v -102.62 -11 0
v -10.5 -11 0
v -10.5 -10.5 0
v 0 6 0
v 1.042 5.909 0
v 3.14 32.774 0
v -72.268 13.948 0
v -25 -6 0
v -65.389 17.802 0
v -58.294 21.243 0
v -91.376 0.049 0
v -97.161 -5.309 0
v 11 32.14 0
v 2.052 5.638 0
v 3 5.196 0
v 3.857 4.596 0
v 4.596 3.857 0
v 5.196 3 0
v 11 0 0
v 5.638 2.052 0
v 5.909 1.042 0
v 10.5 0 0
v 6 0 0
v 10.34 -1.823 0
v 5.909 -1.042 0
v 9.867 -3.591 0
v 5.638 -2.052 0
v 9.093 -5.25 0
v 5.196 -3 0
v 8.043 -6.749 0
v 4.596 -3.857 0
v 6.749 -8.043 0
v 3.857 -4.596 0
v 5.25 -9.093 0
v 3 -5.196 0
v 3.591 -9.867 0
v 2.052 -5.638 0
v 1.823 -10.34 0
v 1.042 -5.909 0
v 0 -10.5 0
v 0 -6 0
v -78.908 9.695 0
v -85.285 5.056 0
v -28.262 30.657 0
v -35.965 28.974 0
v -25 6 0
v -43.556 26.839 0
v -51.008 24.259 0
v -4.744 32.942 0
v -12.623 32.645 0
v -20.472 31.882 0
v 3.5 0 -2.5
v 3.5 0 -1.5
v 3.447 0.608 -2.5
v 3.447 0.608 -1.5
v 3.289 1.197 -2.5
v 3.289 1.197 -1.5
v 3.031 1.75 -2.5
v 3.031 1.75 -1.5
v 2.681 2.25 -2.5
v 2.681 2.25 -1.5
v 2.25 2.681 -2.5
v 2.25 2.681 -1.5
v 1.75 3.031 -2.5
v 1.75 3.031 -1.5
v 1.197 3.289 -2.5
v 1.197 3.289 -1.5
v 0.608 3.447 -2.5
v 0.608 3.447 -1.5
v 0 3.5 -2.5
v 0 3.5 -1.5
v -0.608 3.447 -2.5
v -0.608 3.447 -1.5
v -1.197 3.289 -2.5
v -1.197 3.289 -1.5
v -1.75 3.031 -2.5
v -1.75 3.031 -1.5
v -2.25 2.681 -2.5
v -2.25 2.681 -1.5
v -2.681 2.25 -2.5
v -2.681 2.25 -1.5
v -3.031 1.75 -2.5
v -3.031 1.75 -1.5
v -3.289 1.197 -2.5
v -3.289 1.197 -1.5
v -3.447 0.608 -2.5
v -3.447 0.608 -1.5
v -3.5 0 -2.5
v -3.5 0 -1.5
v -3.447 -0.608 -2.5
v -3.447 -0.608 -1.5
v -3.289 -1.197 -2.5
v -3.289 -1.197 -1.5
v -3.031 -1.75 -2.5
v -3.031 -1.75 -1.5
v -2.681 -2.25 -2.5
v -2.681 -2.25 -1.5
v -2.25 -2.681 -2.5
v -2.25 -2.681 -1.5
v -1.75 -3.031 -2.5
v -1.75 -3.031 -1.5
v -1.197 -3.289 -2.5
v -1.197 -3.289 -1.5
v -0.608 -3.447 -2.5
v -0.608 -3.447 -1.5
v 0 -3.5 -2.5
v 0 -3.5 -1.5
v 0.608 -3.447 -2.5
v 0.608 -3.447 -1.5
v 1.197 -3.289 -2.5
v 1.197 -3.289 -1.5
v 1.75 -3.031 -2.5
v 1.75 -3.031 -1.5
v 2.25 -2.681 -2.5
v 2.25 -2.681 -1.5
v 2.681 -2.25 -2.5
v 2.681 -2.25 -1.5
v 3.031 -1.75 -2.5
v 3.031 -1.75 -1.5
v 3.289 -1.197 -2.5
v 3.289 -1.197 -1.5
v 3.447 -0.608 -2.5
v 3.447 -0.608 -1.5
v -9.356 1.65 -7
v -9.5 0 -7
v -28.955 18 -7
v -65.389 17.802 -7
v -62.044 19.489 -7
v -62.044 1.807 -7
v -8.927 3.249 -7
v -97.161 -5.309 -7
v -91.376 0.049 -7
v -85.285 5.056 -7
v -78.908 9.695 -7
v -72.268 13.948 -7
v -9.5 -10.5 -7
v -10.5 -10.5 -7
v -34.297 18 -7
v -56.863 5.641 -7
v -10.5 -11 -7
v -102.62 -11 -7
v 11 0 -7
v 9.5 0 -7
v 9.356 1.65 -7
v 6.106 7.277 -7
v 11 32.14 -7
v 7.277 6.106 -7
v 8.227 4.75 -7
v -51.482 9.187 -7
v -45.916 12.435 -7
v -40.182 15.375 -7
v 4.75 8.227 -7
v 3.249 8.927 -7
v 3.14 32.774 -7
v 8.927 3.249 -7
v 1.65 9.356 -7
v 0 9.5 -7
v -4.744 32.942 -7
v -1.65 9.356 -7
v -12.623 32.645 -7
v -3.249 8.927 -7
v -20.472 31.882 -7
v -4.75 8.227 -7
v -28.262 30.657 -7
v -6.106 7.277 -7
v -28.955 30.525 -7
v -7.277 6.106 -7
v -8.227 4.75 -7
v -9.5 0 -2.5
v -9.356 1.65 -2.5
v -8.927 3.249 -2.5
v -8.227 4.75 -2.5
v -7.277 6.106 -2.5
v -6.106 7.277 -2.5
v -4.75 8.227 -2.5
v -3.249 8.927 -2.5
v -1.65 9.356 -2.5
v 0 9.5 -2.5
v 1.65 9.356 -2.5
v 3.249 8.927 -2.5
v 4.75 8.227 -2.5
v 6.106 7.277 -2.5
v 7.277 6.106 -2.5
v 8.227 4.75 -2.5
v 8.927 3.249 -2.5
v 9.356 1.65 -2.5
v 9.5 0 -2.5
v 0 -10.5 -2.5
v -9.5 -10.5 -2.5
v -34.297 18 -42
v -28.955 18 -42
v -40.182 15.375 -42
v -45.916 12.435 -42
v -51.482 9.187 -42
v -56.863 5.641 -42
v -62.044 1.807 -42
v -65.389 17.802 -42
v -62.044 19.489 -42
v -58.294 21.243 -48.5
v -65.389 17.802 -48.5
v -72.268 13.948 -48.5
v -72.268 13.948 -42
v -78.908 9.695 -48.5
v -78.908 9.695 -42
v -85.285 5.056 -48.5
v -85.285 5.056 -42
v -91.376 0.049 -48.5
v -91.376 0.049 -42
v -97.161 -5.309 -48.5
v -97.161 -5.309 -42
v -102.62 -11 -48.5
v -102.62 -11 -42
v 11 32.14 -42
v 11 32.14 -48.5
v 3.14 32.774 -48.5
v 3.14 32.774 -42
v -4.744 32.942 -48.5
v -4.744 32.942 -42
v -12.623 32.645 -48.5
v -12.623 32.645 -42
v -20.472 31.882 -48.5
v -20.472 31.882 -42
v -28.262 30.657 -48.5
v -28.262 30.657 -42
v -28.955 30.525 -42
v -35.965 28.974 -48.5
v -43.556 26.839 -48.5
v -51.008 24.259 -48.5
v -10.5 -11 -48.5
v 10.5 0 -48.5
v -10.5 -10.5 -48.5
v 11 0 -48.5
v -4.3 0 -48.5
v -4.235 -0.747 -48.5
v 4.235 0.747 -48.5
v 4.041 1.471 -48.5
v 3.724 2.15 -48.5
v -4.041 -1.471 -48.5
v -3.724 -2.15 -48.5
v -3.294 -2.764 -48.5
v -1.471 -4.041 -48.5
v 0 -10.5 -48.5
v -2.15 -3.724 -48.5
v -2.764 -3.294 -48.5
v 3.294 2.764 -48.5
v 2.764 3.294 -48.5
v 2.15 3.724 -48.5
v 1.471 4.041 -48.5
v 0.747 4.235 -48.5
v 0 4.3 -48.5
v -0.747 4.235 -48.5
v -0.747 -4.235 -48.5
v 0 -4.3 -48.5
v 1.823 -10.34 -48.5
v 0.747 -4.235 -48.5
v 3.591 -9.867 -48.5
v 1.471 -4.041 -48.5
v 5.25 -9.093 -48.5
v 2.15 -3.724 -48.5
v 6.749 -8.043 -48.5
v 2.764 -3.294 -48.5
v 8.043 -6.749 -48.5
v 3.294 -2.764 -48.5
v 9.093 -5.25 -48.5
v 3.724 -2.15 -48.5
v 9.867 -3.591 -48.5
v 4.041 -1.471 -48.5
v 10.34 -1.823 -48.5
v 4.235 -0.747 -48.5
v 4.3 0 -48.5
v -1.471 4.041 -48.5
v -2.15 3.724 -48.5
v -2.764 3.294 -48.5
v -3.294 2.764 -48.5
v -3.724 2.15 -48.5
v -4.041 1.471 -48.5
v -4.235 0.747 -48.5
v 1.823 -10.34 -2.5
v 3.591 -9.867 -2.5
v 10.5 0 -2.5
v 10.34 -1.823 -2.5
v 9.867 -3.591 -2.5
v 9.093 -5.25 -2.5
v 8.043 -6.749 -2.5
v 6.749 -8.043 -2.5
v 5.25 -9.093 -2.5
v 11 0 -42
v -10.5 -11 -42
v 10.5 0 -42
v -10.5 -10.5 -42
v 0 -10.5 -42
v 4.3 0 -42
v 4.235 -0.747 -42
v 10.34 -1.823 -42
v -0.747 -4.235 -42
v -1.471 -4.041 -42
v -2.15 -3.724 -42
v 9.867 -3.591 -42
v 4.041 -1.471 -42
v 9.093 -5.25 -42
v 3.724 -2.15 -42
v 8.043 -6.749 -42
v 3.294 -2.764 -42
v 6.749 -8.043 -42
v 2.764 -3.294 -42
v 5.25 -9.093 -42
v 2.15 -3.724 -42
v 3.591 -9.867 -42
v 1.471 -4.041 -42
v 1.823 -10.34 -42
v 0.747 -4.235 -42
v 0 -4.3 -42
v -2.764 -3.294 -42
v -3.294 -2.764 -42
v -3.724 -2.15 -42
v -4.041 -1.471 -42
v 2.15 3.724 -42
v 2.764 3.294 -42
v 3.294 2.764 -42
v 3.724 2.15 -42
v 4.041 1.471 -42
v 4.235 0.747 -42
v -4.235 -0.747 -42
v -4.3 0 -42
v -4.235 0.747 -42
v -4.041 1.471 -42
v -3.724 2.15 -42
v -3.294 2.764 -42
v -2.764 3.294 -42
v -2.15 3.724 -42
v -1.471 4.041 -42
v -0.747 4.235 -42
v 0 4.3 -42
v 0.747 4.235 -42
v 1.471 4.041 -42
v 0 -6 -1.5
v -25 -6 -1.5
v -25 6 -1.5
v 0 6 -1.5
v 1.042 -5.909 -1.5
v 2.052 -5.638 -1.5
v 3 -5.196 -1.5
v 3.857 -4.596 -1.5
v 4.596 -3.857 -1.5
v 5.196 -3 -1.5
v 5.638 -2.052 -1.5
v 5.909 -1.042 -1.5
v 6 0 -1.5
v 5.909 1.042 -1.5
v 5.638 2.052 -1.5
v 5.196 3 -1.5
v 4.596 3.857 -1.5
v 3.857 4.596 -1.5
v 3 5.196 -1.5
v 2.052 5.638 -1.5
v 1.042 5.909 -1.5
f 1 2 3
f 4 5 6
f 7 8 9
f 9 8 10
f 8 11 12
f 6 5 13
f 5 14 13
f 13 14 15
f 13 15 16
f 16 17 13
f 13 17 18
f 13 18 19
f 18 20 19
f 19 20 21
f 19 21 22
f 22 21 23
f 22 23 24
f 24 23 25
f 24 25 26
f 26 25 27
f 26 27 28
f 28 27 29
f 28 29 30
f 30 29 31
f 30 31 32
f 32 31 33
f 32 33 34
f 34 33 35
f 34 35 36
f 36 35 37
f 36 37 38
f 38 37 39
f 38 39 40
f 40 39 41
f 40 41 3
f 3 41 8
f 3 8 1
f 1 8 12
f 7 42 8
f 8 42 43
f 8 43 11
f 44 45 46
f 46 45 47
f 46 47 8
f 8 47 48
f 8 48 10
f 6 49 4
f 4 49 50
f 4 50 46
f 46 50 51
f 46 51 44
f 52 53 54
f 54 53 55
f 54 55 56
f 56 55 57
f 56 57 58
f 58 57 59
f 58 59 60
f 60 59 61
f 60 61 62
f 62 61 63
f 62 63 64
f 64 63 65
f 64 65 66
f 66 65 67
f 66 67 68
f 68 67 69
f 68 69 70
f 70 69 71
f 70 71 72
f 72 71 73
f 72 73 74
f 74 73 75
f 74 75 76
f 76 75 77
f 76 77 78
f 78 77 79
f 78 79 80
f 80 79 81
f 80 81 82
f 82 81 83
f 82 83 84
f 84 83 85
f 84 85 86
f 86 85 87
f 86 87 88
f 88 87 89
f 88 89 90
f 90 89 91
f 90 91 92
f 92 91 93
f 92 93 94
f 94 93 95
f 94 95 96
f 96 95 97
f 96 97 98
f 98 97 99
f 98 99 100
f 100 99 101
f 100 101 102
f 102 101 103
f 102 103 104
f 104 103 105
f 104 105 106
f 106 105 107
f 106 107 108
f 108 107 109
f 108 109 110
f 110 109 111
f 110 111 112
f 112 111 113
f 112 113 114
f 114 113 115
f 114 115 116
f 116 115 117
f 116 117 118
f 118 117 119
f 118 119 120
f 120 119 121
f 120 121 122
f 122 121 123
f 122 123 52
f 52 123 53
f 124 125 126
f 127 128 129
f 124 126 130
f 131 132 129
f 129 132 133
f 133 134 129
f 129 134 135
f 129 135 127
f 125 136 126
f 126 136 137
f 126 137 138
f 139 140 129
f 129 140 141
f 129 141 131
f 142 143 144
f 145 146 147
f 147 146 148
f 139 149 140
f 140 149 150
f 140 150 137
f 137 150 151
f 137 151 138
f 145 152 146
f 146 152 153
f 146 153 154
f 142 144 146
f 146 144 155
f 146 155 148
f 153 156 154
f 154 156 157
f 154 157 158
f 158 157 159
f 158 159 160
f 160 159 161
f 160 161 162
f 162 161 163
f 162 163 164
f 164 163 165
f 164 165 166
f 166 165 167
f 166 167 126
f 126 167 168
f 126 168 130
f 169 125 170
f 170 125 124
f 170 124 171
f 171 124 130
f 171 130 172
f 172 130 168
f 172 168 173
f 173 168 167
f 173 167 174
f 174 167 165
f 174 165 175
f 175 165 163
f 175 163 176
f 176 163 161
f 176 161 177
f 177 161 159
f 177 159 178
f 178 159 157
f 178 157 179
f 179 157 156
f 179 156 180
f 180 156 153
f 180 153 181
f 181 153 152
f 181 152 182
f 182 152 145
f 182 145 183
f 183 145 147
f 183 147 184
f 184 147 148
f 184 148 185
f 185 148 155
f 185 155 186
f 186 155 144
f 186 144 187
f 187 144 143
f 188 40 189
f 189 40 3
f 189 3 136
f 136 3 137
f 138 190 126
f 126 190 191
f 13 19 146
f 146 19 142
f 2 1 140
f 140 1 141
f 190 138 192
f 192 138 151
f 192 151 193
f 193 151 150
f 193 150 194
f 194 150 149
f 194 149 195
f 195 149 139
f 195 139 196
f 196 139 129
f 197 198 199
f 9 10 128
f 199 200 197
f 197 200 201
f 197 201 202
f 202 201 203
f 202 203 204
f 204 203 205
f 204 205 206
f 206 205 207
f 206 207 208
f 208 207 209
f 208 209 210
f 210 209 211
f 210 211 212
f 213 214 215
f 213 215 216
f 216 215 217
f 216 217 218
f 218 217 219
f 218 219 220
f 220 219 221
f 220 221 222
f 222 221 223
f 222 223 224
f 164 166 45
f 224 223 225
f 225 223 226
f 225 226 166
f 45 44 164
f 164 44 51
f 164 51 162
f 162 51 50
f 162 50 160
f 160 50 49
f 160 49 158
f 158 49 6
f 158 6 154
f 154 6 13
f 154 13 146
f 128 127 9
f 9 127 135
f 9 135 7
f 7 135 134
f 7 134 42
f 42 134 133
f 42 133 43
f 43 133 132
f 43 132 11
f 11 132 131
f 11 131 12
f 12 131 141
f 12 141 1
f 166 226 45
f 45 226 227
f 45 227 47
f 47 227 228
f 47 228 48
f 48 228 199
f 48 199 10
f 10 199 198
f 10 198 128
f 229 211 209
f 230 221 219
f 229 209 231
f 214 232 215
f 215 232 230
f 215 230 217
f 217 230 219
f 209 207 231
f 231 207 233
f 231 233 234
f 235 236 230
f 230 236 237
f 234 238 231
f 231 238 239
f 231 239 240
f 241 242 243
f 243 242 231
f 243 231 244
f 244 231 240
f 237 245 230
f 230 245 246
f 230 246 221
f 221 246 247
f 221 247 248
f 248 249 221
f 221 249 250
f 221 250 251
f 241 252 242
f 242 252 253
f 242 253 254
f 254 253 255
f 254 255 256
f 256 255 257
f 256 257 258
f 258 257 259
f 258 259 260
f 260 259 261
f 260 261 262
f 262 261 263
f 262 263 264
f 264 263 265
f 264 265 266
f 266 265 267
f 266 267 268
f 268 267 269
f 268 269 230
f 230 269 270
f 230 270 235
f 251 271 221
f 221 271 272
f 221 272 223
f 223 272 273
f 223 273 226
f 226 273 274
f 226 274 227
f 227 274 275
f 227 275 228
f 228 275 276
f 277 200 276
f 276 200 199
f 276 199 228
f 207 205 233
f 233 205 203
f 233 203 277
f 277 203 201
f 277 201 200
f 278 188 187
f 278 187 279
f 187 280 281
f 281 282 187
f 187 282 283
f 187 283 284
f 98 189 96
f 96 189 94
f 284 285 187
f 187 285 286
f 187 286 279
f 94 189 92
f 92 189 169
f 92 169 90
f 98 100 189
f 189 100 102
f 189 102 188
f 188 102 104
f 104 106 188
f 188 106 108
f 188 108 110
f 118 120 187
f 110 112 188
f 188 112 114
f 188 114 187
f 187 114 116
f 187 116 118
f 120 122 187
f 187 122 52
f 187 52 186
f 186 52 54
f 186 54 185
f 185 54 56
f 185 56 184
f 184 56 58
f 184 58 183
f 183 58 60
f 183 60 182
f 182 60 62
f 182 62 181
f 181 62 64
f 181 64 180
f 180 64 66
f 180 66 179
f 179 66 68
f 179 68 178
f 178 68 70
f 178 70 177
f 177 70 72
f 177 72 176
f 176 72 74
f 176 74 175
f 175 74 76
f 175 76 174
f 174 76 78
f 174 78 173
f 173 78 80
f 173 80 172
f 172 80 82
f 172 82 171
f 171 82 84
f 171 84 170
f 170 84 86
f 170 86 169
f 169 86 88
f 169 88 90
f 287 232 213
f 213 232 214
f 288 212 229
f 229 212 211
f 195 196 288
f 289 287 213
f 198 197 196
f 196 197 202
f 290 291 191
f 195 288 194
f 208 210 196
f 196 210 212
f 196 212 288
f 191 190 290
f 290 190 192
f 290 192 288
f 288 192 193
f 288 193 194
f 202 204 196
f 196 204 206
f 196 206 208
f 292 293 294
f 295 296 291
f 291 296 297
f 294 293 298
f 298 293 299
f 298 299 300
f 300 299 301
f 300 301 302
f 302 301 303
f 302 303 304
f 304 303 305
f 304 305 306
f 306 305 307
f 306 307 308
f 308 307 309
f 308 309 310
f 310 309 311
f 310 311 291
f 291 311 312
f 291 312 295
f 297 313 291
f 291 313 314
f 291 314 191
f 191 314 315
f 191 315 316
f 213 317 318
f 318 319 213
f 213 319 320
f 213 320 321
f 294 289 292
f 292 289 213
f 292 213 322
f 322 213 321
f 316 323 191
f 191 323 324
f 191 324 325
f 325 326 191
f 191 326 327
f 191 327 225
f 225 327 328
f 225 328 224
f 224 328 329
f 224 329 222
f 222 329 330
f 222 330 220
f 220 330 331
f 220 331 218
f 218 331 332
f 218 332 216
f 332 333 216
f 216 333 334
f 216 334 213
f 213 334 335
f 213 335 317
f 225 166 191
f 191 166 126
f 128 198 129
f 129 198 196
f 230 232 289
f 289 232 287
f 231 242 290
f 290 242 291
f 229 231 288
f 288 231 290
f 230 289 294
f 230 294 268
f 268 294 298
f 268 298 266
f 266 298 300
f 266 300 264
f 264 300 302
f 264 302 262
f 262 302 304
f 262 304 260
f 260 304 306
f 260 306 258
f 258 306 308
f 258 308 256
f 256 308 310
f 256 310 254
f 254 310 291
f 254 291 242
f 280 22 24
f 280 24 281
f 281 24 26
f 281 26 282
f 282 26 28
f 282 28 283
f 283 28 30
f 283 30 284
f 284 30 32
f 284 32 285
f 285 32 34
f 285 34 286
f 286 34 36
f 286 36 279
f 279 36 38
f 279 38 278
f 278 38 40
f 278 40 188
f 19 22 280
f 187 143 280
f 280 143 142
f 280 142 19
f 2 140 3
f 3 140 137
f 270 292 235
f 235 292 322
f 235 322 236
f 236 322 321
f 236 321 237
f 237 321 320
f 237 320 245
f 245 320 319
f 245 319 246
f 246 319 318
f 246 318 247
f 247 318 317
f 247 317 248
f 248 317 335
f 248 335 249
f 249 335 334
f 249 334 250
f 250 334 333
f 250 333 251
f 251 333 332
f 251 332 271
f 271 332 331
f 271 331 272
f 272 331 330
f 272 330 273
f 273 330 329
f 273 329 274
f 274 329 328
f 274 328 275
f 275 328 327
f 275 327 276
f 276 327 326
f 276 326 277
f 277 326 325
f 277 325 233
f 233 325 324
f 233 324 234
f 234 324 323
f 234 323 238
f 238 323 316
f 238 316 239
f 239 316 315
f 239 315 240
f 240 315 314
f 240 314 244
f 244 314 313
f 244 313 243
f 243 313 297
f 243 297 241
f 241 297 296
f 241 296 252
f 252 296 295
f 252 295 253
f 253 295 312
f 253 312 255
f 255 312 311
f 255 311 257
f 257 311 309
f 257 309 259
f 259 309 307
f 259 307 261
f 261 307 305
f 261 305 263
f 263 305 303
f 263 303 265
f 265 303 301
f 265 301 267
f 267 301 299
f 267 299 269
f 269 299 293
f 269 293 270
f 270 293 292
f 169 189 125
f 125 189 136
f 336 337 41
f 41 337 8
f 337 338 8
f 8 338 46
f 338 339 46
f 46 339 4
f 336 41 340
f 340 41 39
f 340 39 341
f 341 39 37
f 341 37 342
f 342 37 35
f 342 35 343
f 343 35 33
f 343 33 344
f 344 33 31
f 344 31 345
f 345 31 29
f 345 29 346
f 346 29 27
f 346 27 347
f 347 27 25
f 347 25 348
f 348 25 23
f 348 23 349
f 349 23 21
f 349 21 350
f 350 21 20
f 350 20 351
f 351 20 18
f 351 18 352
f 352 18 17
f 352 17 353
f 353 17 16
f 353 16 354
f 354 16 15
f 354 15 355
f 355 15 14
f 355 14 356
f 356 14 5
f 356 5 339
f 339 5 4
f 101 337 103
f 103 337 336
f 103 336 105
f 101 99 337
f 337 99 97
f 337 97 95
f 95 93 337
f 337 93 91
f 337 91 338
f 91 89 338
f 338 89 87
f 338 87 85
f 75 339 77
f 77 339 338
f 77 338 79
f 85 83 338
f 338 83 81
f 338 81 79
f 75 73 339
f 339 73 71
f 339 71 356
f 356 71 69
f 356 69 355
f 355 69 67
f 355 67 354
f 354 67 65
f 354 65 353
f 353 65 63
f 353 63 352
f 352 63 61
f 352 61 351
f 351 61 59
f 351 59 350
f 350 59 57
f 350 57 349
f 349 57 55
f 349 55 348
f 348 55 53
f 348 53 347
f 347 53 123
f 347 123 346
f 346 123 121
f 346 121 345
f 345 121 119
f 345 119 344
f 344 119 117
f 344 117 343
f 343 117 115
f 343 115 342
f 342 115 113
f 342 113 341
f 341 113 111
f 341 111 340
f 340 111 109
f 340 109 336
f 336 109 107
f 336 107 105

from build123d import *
from build123d.topology import SkipClean

# Parameters (mm, degrees)
SKETCH1_R                 = 9.5
BOSS_EXTRUDE1_DEPTH       = 48
CUT_EXTRUDE1_DEPTH        = 62.48170459575759
BOSS_EXTRUDE2_START       = -2.5
SKETCH3_R                 = 9.5
SKETCH3_R_2               = 2.4
BOSS_EXTRUDE2_DEPTH       = 2.5
SKETCH4_R                 = 9.5
SKETCH4_R_2               = 4.2
BOSS_EXTRUDE3_DEPTH       = 7
SKETCH5_R                 = 4.2
BOSS_EXTRUDE4_DEPTH       = 11
BOSS_EXTRUDE5_DEPTH       = 48
CUT_EXTRUDE2_START        = -48
CUT_EXTRUDE2_OUTLINE_R    = 2.65
CUT_EXTRUDE2_DEPTH        = 48
CUT_EXTRUDE3_START        = -4.5
SKETCH8_R                 = 9.5
CUT_EXTRUDE3_DEPTH        = 4.5
SKETCH9_R                 = 6.067807638148196
CUT_EXTRUDE4_DEPTH        = 4.5
SKETCH10_R                = 9.5
BOSS_EXTRUDE6_DEPTH       = 4.5
SKETCH11_R                = 4.2
BOSS_EXTRUDE7_DEPTH       = 3.5
SKETCH12_R                = 2.4
BOSS_EXTRUDE8_DEPTH       = 2.5
CUT_EXTRUDE5_DEPTH        = 14.500000000000005
SKETCH15_R                = 3.436413098279149
BOSS_EXTRUDE9_DEPTH       = 10
BOSS_EXTRUDE10_DEPTH      = 0.5
SKETCH18_R                = 4.2
CUT_EXTRUDE8_DEPTH        = 0.5
CUT_EXTRUDE9_DEPTH        = 69.52919086053767
BOSS_EXTRUDE11_DEPTH      = 6.9999999999999964
CUT_EXTRUDE10_DEPTH       = 99.24586505293748
BOSS_EXTRUDE12_DEPTH      = 41.5
SKETCH25_R                = 4.2
CUT_EXTRUDE11_DEPTH       = 0.5
BOSS_EXTRUDE13_DEPTH      = 24.25
BOSS_EXTRUDE13_DEPTH_BACK = 24.25
CUT_EXTRUDE12_DEPTH       = 17.25
CUT_EXTRUDE12_DEPTH_BACK  = 17.75
SKETCH28_W                = 40.57640869896728
SKETCH28_H                = 35.258993514097796
SKETCH28_W_2              = 40.750117962367405
SKETCH28_H_2              = 26.870649991533814
SKETCH29_R                = 2.65
SKETCH29_R_2              = 2.5
BOSS_EXTRUDE14_DEPTH      = 2.5
CUT_EXTRUDE13_DEPTH       = 119.18886786333674
SKETCH31_R                = 4.3
CUT_EXTRUDE14_DEPTH       = 111.47362122614281
CUT_EXTRUDE15_DEPTH       = 21.75
SKETCH33_R                = 3.5
CUT_EXTRUDE16_DEPTH       = 21.75
CUT_EXTRUDE17_DEPTH       = 1.5


# Read off the part's stored shape, not the designer's step: Cut-Extrude2
with BuildPart() as part:
    # Sketch1 → Boss-Extrude1 (new body)
    with BuildSketch(Plane.XY):
        with BuildLine():
            Line((-12, 0), (-12, 30))
            Line((-12, 30), (12, 30))
            Line((12, 30), (12, 0))
            ThreePointArc((12, 0), (-2.2e-15, -12), (-12, 0))
        make_face()
        Circle(SKETCH1_R, mode=Mode.SUBTRACT)
    extrude(amount=-BOSS_EXTRUDE1_DEPTH)

    # Sketch2 → Cut-Extrude1 (cut, through all)
    with BuildSketch(Plane.ZY.offset(12)):
        Polygon((-6.999999999999999, -12), (-41, -12.000000000000004), (-41, 18), (-7.000000000000001, 18.000000000000004), align=None)
    extrude(amount=-CUT_EXTRUDE1_DEPTH, mode=Mode.SUBTRACT)

    # Sketch3 → Boss-Extrude2 (add)
    with BuildSketch(Plane(origin=(0, 0, -48), x_dir=(-1, 0, 0), z_dir=(0, 0, -1)).offset(BOSS_EXTRUDE2_START)):
        Circle(SKETCH3_R)
        Circle(SKETCH3_R_2, mode=Mode.SUBTRACT)
    extrude(amount=BOSS_EXTRUDE2_DEPTH)

    # Sketch4 → Boss-Extrude3 (add)
    with BuildSketch(Plane.XY):
        with Locations(Location((0, 0, 0), (0, 0, 180))):
            Circle(SKETCH4_R)
        Circle(SKETCH4_R_2, mode=Mode.SUBTRACT)
    extrude(amount=-BOSS_EXTRUDE3_DEPTH)

    # Sketch5 → Boss-Extrude4 (add)
    with BuildSketch(Plane.XY):
        Circle(SKETCH5_R)
    extrude(amount=-BOSS_EXTRUDE4_DEPTH)

    # Sketch6 → Boss-Extrude5 (add)
    with BuildSketch(Plane(origin=(0, 0, -48), x_dir=(-1, 0, 0), z_dir=(0, 0, -1))):
        Polygon((12, 30), (12, 18), (17.999999999999925, 18), (38.00000000000001, 18), (38.00000000000001, 30), align=None)
    extrude(amount=-BOSS_EXTRUDE5_DEPTH)

    # Cut-Extrude2 outline → Cut-Extrude2 (cut)
    with BuildSketch(Plane.XY.offset(CUT_EXTRUDE2_START)):
        Circle(CUT_EXTRUDE2_OUTLINE_R)
    extrude(amount=CUT_EXTRUDE2_DEPTH, mode=Mode.SUBTRACT)

    # Sketch8 → Cut-Extrude3 (cut)
    with BuildSketch(Plane(origin=(0, -4e-16, -7), x_dir=(-1, 0, 0), z_dir=(0, -6e-17, -1)).offset(CUT_EXTRUDE3_START)):
        Circle(SKETCH8_R)
    extrude(amount=CUT_EXTRUDE3_DEPTH, mode=Mode.SUBTRACT)


with BuildPart() as cut_extrude3_piece_1:
    # of the separate pieces the step leaves, piece 1, a body of its own (cut_extrude3_pieces)
    add(part.part.solids().sort_by_distance((-12, 0, 0))[0])

    # Sketch10 → Boss-Extrude6 (add)
    with BuildSketch(Plane.XY.offset(-45.5)):
        with Locations(Location((0, 0, 0), (0, 0, 90))):
            Circle(SKETCH10_R)
    extrude(amount=BOSS_EXTRUDE6_DEPTH)

    # Sketch11 → Boss-Extrude7 (add)
    with BuildSketch(Plane.XY.offset(-41)):
        with Locations(Location((0, 0, 0), (0, 0, 180))):
            Circle(SKETCH11_R)
    extrude(amount=BOSS_EXTRUDE7_DEPTH)

    # Sketch12 → Boss-Extrude8 (add)
    with BuildSketch(Plane(origin=(0, 0, -48), x_dir=(-1, 0, 0), z_dir=(0, 0, -1))):
        Circle(SKETCH12_R)
    extrude(amount=-BOSS_EXTRUDE8_DEPTH)

    # Sketch13 → Cut-Extrude5 (cut)
    with BuildSketch(Plane(origin=(0, 30, 0), x_dir=(1, 0, 0), z_dir=(0, 1, 0))):
        Polygon((12, 41), (-23.000000000000004, 41), (-22.999999999999996, 6.999999999999988), (12, 7.000000000000001), align=None)
    extrude(amount=-CUT_EXTRUDE5_DEPTH, mode=Mode.SUBTRACT)

    # Sketch15 → Boss-Extrude9 (add)
    with BuildSketch(Plane(origin=(0, 0, -48), x_dir=(-1, 0, 0), z_dir=(0, 0, -1))):
        Circle(SKETCH15_R)
    extrude(amount=-BOSS_EXTRUDE9_DEPTH)

    # Sketch16 → Boss-Extrude10 (add)
    with BuildSketch(Plane(origin=(0, 0, -48), x_dir=(-1, 0, 0), z_dir=(0, 0, -1))):
        Polygon((38.00000000000001, 30), (-12, 30), (-12, 18), (12, 18), (38.00000000000001, 18), align=None)
        with BuildLine():
            Line((-12, 0), (11.999999999999998, 0))
            ThreePointArc((11.999999999999998, 0), (-2.2e-15, -12), (-12, 0))
        make_face()
        with BuildLine():
            ThreePointArc((11.999999999999998, 0), (7.3e-16, 11.999999999999998), (-11.999999999999998, 1.47e-15))
            Line((-12, 0), (12, 0))
        make_face()
        with BuildLine():
            Line((12, 0), (-12, 0))
            ThreePointArc((-11.999999999999998, 1.47e-15), (-2.2e-15, -11.999999999999998), (11.999999999999998, -2.94e-15))
        make_face()
        with BuildLine():
            Line((12, 18), (-12, 18))
            Line((-12, 18), (-12, 0))
            ThreePointArc((-11.999999999999998, 1.47e-15), (7.3e-16, 11.999999999999998), (11.999999999999998, 0))
            Line((11.999999999999998, 0), (11.999999999999998, 18))
        make_face()
    extrude(amount=BOSS_EXTRUDE10_DEPTH)

    # Sketch18 → Cut-Extrude8 (cut)
    with SkipClean():  # the faces are left unmerged after this step: merging them gives an invalid solid
        with BuildSketch(Plane.XY.offset(-41)):
            with BuildLine():
                Line((12.000000000000004, 30), (-22.999999999999996, 30))
                Line((-22.999999999999996, 30), (-22.999999999999996, 18))
                Line((-22.999999999999996, 18), (-12.000000000000002, 18))
                Line((-12.000000000000002, 18), (-12.000000000000002, 0))
                ThreePointArc((-12, 1.47e-15), (-2.2e-15, -12), (12, -2.94e-15))
                Line((12, 0), (12, 30))
            make_face()
            Circle(SKETCH18_R, mode=Mode.SUBTRACT)
        extrude(amount=-CUT_EXTRUDE8_DEPTH, mode=Mode.SUBTRACT)

    # Sketch19 → Cut-Extrude9 (cut, through all)
    with SkipClean():  # the faces are left unmerged after this step: merging them gives an invalid solid
        with BuildSketch(Plane.XY):
            with BuildLine():
                ThreePointArc((11, -2.69e-15), (-2.02e-15, -11), (-11, 1.35e-15))
                Line((-11, 0), (-12.000000000000002, 0))
                ThreePointArc((-12.000000000000002, 0), (-7.3e-16, -12.000000000000002), (12.000000000000002, -1.47e-15))
                Line((12, 0), (12, 30))
                Line((12, 30), (11, 30))
                Line((11, 30), (11, 0))
            make_face()
        extrude(amount=-CUT_EXTRUDE9_DEPTH, mode=Mode.SUBTRACT)

    # Sketch21 → Boss-Extrude11 (add)
    with SkipClean():  # the faces are left unmerged after this step: merging them gives an invalid solid
        with BuildSketch(Plane.XY):
            with BuildLine():
                Line((-80, -11.000000000000007), (-2.02e-15, -11))
                ThreePointArc((-2.02e-15, -11), (-11, 7.951e-14), (1.5455e-13, 11))
                Line((-9.4e-16, 11), (-2e-17, 29.50098275984317))
                ThreePointArc((1.58451e-12, 29.500982759843026), (-43.87333050880174, 16.901328954446853), (-79.99999999999999, -11.000000000000014))
            make_face()
        boss_extrude11 = extrude(amount=-BOSS_EXTRUDE11_DEPTH)

    # Mirror2: Boss-Extrude11 across plane
    with SkipClean():  # the faces are left unmerged after this step: merging them gives an invalid solid
        add(boss_extrude11.mirror(Plane.XY.offset(-24.25)))

    # Sketch23 → Cut-Extrude10 (cut, through all)
    with SkipClean():  # the faces are left unmerged after this step: merging them gives an invalid solid
        with BuildSketch(Plane.XY):
            with BuildLine():
                Line((11, 30), (-38.00000000000001, 30))
                Line((-38.00000000000001, 30), (-38.00000000000001, 19.680026503546667))
                ThreePointArc((-38.000000000000014, 19.680026503546685), (-14.03748116807828, 27.39201372395351), (10.999999999999979, 30.00000000000003))
            make_face()
        extrude(amount=-CUT_EXTRUDE10_DEPTH, mode=Mode.SUBTRACT)

    # Sketch24 → Boss-Extrude12 (add)
    with BuildSketch(Plane.XY):
        with BuildLine():
            ThreePointArc((-23.00000000000003, 25.145323923706542), (-54.060518829682096, 11.110516861146493), (-80, -11))
            Line((-80, -11.000000000000007), (-75.95443157615205, -11.000000000000004))
            ThreePointArc((-75.95443157615205, -11.000000000000028), (-51.689916223605806, 9.057380529785846), (-22.999999999999986, 22.017084465179764))
            Line((-22.999999999999996, 22.017084465179774), (-23, 25.1453239237065))
        make_face()
    extrude(amount=-BOSS_EXTRUDE12_DEPTH)

    # Sketch25 → Cut-Extrude11 (cut)
    # profile 1 of 4: a face of its own
    with BuildSketch(Plane.XY.offset(-41.5)):
        with BuildLine():
            ThreePointArc((-34.29658362177963, 17.999999999999986), (-56.6966229233105, 5.756871837942555), (-75.95443157615205, -11.000000000000028))
            Line((-75.95443157615205, -11.000000000000007), (0, -11.000000000000007))
            ThreePointArc((-2.02e-15, -11), (-7.778174593052022, 7.778174593052023), (11, 0))
            Line((10.999999999999988, 0), (10.999999999999988, 26.999999999999993))
            ThreePointArc((10.999999999999988, 26.999999999999986), (-6.181599512464837, 25.74765282571859), (-22.999999999996817, 22.017084465180716))
            Line((-23, 22.01708446518151), (-23.000000000000004, 18))
            Line((-23.000000000000004, 18), (-34.29658362177963, 18.000000000000004))
        make_face()
    # profile 2 of 4: a face of its own
    with BuildSketch(Plane.XY.offset(-41.5)):
        with BuildLine():
            ThreePointArc((11, 0), (-7.778174593052022, 7.778174593052023), (-2.02e-15, -11))
            ThreePointArc((-2.02e-15, -11), (7.778174593052021, -7.778174593052024), (11, -2.69e-15))
        make_face()
        Circle(SKETCH25_R, mode=Mode.SUBTRACT)
    # profile 3 of 4: a face of its own
    with BuildSketch(Plane.XY.offset(-41.5)):
        with BuildLine():
            Line((-15.831452239273311, 26.999999999999996), (10.999999999999986, 26.999999999999996))
            Line((11, 26.999999999999996), (11, 30))
            ThreePointArc((10.999999999999591, 30), (-2.49932247622473, 29.24767054972125), (-15.83145223927318, 26.99999999999892))
        make_face()
    # profile 4 of 4: a face of its own
    with BuildSketch(Plane.XY.offset(-41.5)):
        with BuildLine():
            ThreePointArc((-15.83145223927318, 26.99999999999892), (-19.4298595333881, 26.127289318508147), (-22.99999999999981, 25.145323923705888))
            Line((-23, 25.14532392370651), (-23, 22.01708446518151))
            ThreePointArc((-22.999999999996817, 22.017084465180716), (-6.181599512464837, 25.74765282571859), (10.999999999999988, 26.999999999999986))
            Line((10.999999999999986, 26.999999999999996), (-15.831452239273311, 26.999999999999996))
        make_face()
    extrude(amount=-CUT_EXTRUDE11_DEPTH, mode=Mode.SUBTRACT)

    # Sketch27 → Boss-Extrude13 (add, two sides: drawn at the far end of the back side and taken through both)
    with BuildSketch(Plane.XY.offset(-24.25).offset(-BOSS_EXTRUDE13_DEPTH_BACK)):
        with BuildLine():
            Line((10.999999999999988, 30), (11, 32.14))
            ThreePointArc((11, 32.14), (-51.00752842983785, 24.258993514097753), (-102.62, -11.000000000000012))
            Line((-102.62, -11.000000000000012), (-80, -11.00000000000001))
            ThreePointArc((-80, -11.00000000000001), (-38.90490957811666, 19.27675052703941), (10.999999999999988, 30))
        make_face()
    extrude(amount=BOSS_EXTRUDE13_DEPTH + BOSS_EXTRUDE13_DEPTH_BACK)

    # Sketch28 → Cut-Extrude12 (cut, two sides: drawn at the far end of the back side and taken through both)
    with BuildSketch(Plane.XY.offset(-24.25).offset(-CUT_EXTRUDE12_DEPTH_BACK)):
        with Locations((-82.33179565051637, 6.629496757048886)):
            Rectangle(SKETCH28_W, SKETCH28_H)
        with Locations((-8.579880677381787, 25.13489771564523)):
            Rectangle(SKETCH28_W_2, SKETCH28_H_2)
    extrude(amount=CUT_EXTRUDE12_DEPTH + CUT_EXTRUDE12_DEPTH_BACK, mode=Mode.SUBTRACT)

    # Sketch29 → Boss-Extrude14 (add)
    with BuildSketch(Plane.XY):
        Circle(SKETCH29_R)
        Circle(SKETCH29_R_2, mode=Mode.SUBTRACT)
    extrude(amount=-BOSS_EXTRUDE14_DEPTH)

    # Sketch30 → Cut-Extrude13 (cut, through all)
    with BuildSketch(Plane.XY):
        with BuildLine():
            ThreePointArc((-2.02e-15, -11), (7.778174593052021, -7.778174593052023), (11, 1.9e-16))
            Line((11, 0), (10.499999999999998, 0))
            ThreePointArc((10.499999999999998, -2.57e-15), (7.424621202458746, -7.4246212024587495), (-1.93e-15, -10.499999999999998))
            Line((0, -10.499999999999998), (-10.499999999999998, -10.499999999999998))
            Line((-10.499999999999998, -10.499999999999998), (-10.499999999999998, -11.000000000000002))
            Line((-10.5, -11.000000000000002), (0, -11.000000000000002))
        make_face()
    extrude(amount=-CUT_EXTRUDE13_DEPTH, mode=Mode.SUBTRACT)

    # Sketch31 → Cut-Extrude14 (cut, through all)
    with BuildSketch(Plane.XY.offset(-24.25)):
        Circle(SKETCH31_R)
    extrude(amount=-CUT_EXTRUDE14_DEPTH, mode=Mode.SUBTRACT)

    # Sketch32 → Cut-Extrude15 (cut)
    with BuildSketch(Plane.XY.offset(-24.25)):
        with BuildLine():
            Line((-9.5, -10.499999999999998), (-1.93e-15, -10.499999999999998))
            ThreePointArc((-1.93e-15, -10.499999999999998), (7.424621202458748, -7.424621202458747), (10.499999999999998, 2.31e-15))
            Line((10.499999999999998, 7e-16), (9.5, 7e-16))
            ThreePointArc((9.5, -1.63e-15), (-1.75e-15, -9.5), (-9.5, 1.86e-15))
            Line((-9.5, 7e-16), (-9.5, -10.499999999999998))
        make_face()
    extrude(amount=CUT_EXTRUDE15_DEPTH, mode=Mode.SUBTRACT)

    # Sketch33 → Cut-Extrude16 (cut)
    with BuildSketch(Plane.XY):
        Circle(SKETCH33_R)
    extrude(amount=-CUT_EXTRUDE16_DEPTH, mode=Mode.SUBTRACT)

    # Sketch34 → Cut-Extrude17 (cut)
    with BuildSketch(Plane.XY):
        with BuildLine():
            ThreePointArc((-1.1e-15, -6), (-6, 7.3e-16), (3.7e-16, 6))
            Line((0, 6), (-25, 5.9999999999999964))
            Line((-25, 5.9999999999999964), (-25, -6.0000000000000036))
            Line((-25, -6.000000000000004), (1.47e-15, -6))
        make_face()
        with BuildLine():
            ThreePointArc((6, 0), (4.242640687119286, 4.242640687119285), (3.7e-16, 6))
            Line((0, 6), (3.1e-16, 3.5))
            ThreePointArc((1.2456e-13, 3.5), (2.4748737341529603, 2.4748737341528724), (3.5, 0))
            ThreePointArc((3.5, -8.6e-16), (2.4748737341529594, -2.474873734152873), (1.237e-13, -3.5))
            Line((1.16e-15, -3.5), (1.47e-15, -6))
            ThreePointArc((-1.1e-15, -6), (4.242640687119284, -4.242640687119286), (6, -1.47e-15))
        make_face()
        with BuildLine():
            Line((3.1e-16, 3.5), (0, 6))
            ThreePointArc((3.7e-16, 6), (-6, 7.3e-16), (-1.1e-15, -6))
            Line((1.47e-15, -6), (1.16e-15, -3.5))
            ThreePointArc((1.237e-13, -3.5), (-3.5, 4.3e-16), (1.2456e-13, 3.5))
        make_face()
    extrude(amount=-CUT_EXTRUDE17_DEPTH, mode=Mode.SUBTRACT)


with BuildPart() as cut_extrude3_piece_2:
    # of the separate pieces the step leaves, piece 2, a body of its own (cut_extrude3_pieces)
    add(part.part.solids().sort_by_distance((4.2, 0, -7))[0])

    # Sketch9 → Cut-Extrude4 (cut)
    with BuildSketch(Plane(origin=(0, 0, -11), x_dir=(-1, 0, 0), z_dir=(0, 0, -1))):
        Circle(SKETCH9_R)
    extrude(amount=-CUT_EXTRUDE4_DEPTH, mode=Mode.SUBTRACT)


solid = cut_extrude3_piece_1.part
